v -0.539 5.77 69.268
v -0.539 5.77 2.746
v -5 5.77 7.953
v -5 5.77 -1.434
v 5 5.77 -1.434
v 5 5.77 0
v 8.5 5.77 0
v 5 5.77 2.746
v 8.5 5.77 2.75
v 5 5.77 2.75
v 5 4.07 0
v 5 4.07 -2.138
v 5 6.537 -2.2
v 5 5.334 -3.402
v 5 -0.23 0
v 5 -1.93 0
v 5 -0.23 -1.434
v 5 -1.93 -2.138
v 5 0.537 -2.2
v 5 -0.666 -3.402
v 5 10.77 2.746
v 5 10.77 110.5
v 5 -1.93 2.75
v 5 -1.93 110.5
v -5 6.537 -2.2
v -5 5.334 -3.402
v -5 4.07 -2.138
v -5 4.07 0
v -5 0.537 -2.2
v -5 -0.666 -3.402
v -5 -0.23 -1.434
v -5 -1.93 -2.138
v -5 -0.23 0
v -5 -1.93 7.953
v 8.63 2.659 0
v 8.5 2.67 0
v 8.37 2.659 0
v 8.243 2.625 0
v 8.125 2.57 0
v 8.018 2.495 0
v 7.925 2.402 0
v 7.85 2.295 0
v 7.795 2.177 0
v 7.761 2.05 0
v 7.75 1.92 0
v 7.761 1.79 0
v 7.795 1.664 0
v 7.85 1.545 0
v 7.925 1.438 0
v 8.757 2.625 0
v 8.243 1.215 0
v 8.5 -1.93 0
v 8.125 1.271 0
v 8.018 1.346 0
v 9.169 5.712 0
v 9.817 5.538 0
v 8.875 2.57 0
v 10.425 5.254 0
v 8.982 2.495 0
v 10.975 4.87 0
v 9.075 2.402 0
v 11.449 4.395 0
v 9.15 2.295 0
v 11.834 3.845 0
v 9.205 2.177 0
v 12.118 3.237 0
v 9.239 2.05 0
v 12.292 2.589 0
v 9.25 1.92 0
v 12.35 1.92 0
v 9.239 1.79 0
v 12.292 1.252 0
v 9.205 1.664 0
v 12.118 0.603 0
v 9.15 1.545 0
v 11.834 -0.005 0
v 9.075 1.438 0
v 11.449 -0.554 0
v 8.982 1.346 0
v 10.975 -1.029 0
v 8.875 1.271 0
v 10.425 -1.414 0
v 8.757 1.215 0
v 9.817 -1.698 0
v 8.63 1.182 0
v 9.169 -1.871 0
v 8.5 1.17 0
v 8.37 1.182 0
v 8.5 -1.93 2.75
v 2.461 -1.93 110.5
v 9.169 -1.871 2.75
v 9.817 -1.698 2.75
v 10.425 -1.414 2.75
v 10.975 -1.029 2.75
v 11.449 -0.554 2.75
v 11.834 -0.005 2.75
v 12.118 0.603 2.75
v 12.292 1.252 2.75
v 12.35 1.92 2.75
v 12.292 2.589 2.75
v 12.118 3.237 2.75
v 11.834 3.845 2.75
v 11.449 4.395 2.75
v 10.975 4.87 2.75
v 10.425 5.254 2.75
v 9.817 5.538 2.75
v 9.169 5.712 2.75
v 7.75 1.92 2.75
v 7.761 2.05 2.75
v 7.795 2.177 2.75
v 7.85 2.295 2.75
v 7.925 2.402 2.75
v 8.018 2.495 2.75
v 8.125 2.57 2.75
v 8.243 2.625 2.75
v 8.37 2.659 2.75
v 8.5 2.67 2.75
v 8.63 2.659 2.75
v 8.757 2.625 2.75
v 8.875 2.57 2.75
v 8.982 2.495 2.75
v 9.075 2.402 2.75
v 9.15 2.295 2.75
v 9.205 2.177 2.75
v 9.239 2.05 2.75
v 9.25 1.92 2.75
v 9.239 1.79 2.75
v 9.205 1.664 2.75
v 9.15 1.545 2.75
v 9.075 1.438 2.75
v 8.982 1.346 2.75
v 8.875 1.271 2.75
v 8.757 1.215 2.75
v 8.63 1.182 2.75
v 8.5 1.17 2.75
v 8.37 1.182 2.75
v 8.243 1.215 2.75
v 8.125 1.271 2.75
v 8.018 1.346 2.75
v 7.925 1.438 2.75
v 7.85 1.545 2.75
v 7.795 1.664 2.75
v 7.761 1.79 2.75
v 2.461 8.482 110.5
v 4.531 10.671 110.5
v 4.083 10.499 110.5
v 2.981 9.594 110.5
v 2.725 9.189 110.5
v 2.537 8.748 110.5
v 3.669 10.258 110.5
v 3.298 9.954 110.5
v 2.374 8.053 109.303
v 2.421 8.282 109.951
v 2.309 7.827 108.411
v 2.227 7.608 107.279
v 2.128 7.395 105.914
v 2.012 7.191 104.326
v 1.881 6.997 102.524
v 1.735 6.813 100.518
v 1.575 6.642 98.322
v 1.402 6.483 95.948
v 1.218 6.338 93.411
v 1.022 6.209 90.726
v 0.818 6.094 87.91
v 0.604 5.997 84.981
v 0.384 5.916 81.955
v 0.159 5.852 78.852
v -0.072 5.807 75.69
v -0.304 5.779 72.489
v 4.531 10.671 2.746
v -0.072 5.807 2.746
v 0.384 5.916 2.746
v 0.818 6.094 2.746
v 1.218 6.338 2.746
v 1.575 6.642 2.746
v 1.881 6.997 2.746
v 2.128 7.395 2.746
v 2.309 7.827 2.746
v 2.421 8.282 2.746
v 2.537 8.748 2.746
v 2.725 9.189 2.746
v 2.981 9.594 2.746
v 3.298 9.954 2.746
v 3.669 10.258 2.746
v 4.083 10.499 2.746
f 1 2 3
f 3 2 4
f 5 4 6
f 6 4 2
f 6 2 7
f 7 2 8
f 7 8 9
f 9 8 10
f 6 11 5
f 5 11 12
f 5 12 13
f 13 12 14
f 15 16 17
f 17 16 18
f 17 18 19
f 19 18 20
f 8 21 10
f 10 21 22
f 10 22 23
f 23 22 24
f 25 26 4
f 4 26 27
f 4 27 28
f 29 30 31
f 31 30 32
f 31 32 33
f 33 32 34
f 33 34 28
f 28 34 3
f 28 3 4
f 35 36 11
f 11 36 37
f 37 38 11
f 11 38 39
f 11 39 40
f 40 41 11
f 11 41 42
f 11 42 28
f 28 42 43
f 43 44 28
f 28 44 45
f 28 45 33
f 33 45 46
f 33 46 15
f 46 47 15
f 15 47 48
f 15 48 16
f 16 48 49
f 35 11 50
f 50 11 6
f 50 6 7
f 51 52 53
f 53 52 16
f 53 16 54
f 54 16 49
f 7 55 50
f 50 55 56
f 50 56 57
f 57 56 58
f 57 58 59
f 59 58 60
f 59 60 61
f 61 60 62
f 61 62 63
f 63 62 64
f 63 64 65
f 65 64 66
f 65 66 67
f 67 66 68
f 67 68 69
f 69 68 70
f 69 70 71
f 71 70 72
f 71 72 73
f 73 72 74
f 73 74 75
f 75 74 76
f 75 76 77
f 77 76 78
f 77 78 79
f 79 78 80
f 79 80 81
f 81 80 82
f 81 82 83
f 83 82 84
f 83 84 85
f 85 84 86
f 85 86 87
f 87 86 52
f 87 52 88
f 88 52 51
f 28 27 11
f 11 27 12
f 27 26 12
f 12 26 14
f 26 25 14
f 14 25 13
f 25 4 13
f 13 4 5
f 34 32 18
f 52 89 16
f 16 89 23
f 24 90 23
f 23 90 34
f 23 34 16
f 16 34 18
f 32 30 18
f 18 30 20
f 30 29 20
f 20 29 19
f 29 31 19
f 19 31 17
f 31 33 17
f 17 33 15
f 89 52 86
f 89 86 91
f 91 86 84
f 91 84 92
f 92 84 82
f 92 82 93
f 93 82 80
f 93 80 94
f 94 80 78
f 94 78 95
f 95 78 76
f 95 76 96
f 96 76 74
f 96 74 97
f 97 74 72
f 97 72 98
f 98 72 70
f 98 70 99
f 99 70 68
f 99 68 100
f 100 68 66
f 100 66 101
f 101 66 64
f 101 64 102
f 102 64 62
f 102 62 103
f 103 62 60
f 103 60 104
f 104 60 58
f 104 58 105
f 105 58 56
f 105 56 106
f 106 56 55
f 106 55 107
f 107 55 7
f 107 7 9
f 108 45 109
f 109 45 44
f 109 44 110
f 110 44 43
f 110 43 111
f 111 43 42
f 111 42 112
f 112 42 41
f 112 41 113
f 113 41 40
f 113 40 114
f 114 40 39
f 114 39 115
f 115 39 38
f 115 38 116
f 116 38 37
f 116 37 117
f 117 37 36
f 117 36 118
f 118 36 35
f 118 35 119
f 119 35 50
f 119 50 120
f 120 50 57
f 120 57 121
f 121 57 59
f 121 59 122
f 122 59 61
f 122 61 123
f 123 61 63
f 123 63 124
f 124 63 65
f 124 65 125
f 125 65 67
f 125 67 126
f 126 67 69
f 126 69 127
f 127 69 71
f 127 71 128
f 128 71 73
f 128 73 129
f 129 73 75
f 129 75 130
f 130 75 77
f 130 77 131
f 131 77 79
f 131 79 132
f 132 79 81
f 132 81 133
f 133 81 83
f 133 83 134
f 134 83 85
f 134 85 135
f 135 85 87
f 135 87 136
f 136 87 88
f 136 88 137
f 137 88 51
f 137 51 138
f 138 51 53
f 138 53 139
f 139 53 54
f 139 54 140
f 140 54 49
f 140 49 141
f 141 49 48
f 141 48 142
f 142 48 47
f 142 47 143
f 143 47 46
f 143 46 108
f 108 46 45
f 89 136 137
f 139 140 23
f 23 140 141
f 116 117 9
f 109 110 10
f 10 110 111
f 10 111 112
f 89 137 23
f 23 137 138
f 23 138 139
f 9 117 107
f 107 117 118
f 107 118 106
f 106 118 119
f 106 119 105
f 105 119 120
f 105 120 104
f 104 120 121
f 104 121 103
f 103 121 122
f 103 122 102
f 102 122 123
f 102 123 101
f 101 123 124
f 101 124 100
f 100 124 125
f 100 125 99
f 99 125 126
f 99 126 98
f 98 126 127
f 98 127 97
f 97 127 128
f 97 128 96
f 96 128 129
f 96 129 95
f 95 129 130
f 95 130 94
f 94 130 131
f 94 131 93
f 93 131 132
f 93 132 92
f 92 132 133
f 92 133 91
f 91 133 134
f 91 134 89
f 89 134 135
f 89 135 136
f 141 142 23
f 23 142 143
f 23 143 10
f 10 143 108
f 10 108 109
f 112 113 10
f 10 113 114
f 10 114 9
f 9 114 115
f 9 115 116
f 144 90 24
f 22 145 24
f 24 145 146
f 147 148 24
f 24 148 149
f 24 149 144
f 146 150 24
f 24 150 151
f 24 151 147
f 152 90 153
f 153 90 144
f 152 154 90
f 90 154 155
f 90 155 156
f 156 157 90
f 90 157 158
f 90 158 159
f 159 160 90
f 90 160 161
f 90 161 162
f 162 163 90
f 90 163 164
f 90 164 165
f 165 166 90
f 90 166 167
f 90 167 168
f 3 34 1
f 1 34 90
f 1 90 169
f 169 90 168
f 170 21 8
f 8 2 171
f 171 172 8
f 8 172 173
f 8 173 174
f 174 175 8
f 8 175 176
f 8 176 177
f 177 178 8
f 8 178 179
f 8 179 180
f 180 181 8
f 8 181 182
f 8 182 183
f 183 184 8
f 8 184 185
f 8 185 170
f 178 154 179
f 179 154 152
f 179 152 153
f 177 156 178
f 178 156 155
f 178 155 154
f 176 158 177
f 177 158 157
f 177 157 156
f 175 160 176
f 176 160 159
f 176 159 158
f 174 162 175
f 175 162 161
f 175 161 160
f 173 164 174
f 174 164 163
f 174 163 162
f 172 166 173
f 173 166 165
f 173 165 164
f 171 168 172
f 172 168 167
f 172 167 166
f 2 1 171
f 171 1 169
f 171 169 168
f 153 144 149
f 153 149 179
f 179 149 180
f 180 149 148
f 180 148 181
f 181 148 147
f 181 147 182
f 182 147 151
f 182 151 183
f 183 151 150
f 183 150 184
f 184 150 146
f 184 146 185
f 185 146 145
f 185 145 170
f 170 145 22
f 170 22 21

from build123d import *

# Parameters (mm, degrees)
SKETCH2_W            = 10
SKETCH2_H            = 14.768412439
BOSS_EXTRUDE1_DEPTH  = 5
BOSS_EXTRUDE4_DEPTH  = 10
SKETCH9_W            = 10
SKETCH9_H            = 3.18
SKETCH9_H_2          = 3.888412439
CUT_EXTRUDE3_DEPTH   = 5
BOSS_EXTRUDE5_DEPTH  = 7.7
SKETCH12_R           = 0.75
BOSS_EXTRUDE7_DEPTH  = 2.75
FILLET1_R            = 2.5
SKETCH13_W           = 17.887250462
SKETCH13_H           = 46.229219396
CUT_EXTRUDE4_DEPTH   = 20
SKETCH15_W           = 10
SKETCH15_H           = 7.7
BOSS_EXTRUDE9_DEPTH  = 100
CUT_EXTRUDE5_DEPTH   = 100
SKETCH17_W           = 2.538779858
SKETCH17_H           = 107.754476916
BOSS_EXTRUDE10_DEPTH = 5
FILLET2_R            = 3
FILLET3_R            = 3


with BuildPart() as part:
    # Sketch2 → Boss-Extrude1 (new body)
    with BuildSketch(Plane.XY):
        with Locations((0, 1.566049366)):
            Rectangle(SKETCH2_W, SKETCH2_H)
    extrude(amount=BOSS_EXTRUDE1_DEPTH)

    # Sketch8 → Boss-Extrude4 (add)
    with BuildSketch(Plane.ZY.offset(5)):
        Polygon((-0.15, 5.770255585), (0, 5.770255585), (0, 4.070255585), (-0.15, 4.070255585), (-2.137867966, 4.070255585), (-3.402081528, 5.334469147), (-2.2, 6.536550675), (-1.43370491, 5.770255585), align=None)
        Polygon((-0.15, -1.929744415), (0, -1.929744415), (0, -0.229744415), (-0.15, -0.229744415), (-1.43370491, -0.229744415), (-2.2, 0.536550675), (-3.402081528, -0.665530853), (-2.137867966, -1.929744415), align=None)
    extrude(amount=-BOSS_EXTRUDE4_DEPTH)

    # Sketch9 → Cut-Extrude3 (cut)
    with BuildSketch(Plane(origin=(0, 0, 0), x_dir=(-1, 0, 0), z_dir=(0, 0, -1))):
        with Locations((0, 7.360255585)):
            Rectangle(SKETCH9_W, SKETCH9_H)
        with Locations((0, -3.873950635)):
            Rectangle(SKETCH9_W, SKETCH9_H_2)
    extrude(amount=-CUT_EXTRUDE3_DEPTH, mode=Mode.SUBTRACT)

    # Sketch10 → Boss-Extrude5 (add)
    with BuildSketch(Plane(origin=(0, 5.770255585, 0), x_dir=(1, 0, 0), z_dir=(0, 1, 0))):
        with BuildLine():
            Line((-5, -5), (-5, -10.5))
            Line((-5, -10.5), (1.352445729, -55.7))
            Line((1.352445729, -55.7), (6.352445729, -55.7))
            Line((6.352445729, -55.7), (6.352445729, -49.2))
            ThreePointArc((6.352445729, -49.2), (1.383429579, -31.764936646), (5, -14))
            Line((5, -14), (5, -5))
            Line((5, -5), (-5, -5))
        make_face()
    extrude(amount=-BOSS_EXTRUDE5_DEPTH)

    # Sketch12 → Boss-Extrude7 (add)
    with BuildSketch(Plane.XY):
        with BuildLine():
            Line((5, 5.770255585), (8.5, 5.770255585))
            ThreePointArc((8.5, 5.770255585), (12.35, 1.920255585), (8.5, -1.929744415))
            Line((8.5, -1.929744415), (5, -1.929744415))
            Line((5, -1.929744415), (5, 5.770255585))
        make_face()
        with Locations((8.5, 1.920255585)):
            Circle(SKETCH12_R, mode=Mode.SUBTRACT)
    extrude(amount=BOSS_EXTRUDE7_DEPTH)

    # Fillet1
    fillet1_edges = [part.edges().sort_by_distance(p)[0] for p in [
        (6.352445729, 1.920255585, 49.2),
        (5, 1.920255585, 14),
        (1.352445729, 1.920255585, 55.7),
        (6.352445729, 1.920255585, 55.7),
    ]]
    fillet(fillet1_edges, radius=FILLET1_R)

    # Sketch13 → Cut-Extrude4 (cut)
    with BuildSketch(Plane(origin=(0, 5.770255585, 0), x_dir=(1, 0, 0), z_dir=(0, 1, 0))):
        with Locations((3.943625231, -33.614609698)):
            Rectangle(SKETCH13_W, SKETCH13_H)
    extrude(amount=-CUT_EXTRUDE4_DEPTH, mode=Mode.SUBTRACT)

    # Sketch15 → Boss-Extrude9 (add)
    with BuildSketch(Plane.XY.offset(10.5)):
        with Locations((0, 1.920255585)):
            Rectangle(SKETCH15_W, SKETCH15_H)
    extrude(amount=BOSS_EXTRUDE9_DEPTH)

    # Sketch16 → Cut-Extrude5 (cut)
    with BuildSketch(Plane(origin=(0, 5.770255585, 0), x_dir=(1, 0, 0), z_dir=(0, 1, 0))):
        Polygon((-5, -7.952810564), (2.461220142, -110.5), (-5, -110.5), align=None)
    extrude(amount=-CUT_EXTRUDE5_DEPTH, mode=Mode.SUBTRACT)

    # Sketch17 → Boss-Extrude10 (add)
    with BuildSketch(Plane(origin=(0, 5.770255585, 0), x_dir=(1, 0, 0), z_dir=(0, 1, 0))):
        with Locations((3.730610071, -56.622761542)):
            Rectangle(SKETCH17_W, SKETCH17_H)
    extrude(amount=BOSS_EXTRUDE10_DEPTH)

    # Fillet2
    fillet2_edges = [part.edges().sort_by_distance(p)[0] for p in [
        (2.461220142, 5.770255585, 56.622761542),
    ]]
    fillet(fillet2_edges, radius=FILLET2_R)

    # Fillet3
    # the kernel refuses this fillet: 3 mm, written as the material it takes off along each edge
    with BuildSketch(Plane(origin=(2.461220142, 10.770255585, 116.846949644), x_dir=(-0.016047608738208652, -0.9998712288358863, 0), z_dir=(0, 0, -1))) as fillet3_piece_1:
        with BuildLine():
            CenterArc((2.92841725, -2.967518469), FILLET3_R, 98.438939572, 73.338315122)
            Line((-0.040741346, -2.538452936), (-0.337657205, -2.495546383))
            ThreePointArc((-0.337657205, -2.495546383), (-0.320332042, -1.264412185), (-0.299961369, 0.004814283))
            Line((-0.299961369, 0.004814283), (0.004814283, 0.299961369))
            ThreePointArc((0.004814283, 0.299961369), (2.00455674, 0.267866151), (2.444124669, 0.296751847))
            Line((2.444124669, 0.296751847), (2.488151267, 0))
        make_face()
    extrude(amount=120.448376205, mode=Mode.SUBTRACT)


solid = part.part
